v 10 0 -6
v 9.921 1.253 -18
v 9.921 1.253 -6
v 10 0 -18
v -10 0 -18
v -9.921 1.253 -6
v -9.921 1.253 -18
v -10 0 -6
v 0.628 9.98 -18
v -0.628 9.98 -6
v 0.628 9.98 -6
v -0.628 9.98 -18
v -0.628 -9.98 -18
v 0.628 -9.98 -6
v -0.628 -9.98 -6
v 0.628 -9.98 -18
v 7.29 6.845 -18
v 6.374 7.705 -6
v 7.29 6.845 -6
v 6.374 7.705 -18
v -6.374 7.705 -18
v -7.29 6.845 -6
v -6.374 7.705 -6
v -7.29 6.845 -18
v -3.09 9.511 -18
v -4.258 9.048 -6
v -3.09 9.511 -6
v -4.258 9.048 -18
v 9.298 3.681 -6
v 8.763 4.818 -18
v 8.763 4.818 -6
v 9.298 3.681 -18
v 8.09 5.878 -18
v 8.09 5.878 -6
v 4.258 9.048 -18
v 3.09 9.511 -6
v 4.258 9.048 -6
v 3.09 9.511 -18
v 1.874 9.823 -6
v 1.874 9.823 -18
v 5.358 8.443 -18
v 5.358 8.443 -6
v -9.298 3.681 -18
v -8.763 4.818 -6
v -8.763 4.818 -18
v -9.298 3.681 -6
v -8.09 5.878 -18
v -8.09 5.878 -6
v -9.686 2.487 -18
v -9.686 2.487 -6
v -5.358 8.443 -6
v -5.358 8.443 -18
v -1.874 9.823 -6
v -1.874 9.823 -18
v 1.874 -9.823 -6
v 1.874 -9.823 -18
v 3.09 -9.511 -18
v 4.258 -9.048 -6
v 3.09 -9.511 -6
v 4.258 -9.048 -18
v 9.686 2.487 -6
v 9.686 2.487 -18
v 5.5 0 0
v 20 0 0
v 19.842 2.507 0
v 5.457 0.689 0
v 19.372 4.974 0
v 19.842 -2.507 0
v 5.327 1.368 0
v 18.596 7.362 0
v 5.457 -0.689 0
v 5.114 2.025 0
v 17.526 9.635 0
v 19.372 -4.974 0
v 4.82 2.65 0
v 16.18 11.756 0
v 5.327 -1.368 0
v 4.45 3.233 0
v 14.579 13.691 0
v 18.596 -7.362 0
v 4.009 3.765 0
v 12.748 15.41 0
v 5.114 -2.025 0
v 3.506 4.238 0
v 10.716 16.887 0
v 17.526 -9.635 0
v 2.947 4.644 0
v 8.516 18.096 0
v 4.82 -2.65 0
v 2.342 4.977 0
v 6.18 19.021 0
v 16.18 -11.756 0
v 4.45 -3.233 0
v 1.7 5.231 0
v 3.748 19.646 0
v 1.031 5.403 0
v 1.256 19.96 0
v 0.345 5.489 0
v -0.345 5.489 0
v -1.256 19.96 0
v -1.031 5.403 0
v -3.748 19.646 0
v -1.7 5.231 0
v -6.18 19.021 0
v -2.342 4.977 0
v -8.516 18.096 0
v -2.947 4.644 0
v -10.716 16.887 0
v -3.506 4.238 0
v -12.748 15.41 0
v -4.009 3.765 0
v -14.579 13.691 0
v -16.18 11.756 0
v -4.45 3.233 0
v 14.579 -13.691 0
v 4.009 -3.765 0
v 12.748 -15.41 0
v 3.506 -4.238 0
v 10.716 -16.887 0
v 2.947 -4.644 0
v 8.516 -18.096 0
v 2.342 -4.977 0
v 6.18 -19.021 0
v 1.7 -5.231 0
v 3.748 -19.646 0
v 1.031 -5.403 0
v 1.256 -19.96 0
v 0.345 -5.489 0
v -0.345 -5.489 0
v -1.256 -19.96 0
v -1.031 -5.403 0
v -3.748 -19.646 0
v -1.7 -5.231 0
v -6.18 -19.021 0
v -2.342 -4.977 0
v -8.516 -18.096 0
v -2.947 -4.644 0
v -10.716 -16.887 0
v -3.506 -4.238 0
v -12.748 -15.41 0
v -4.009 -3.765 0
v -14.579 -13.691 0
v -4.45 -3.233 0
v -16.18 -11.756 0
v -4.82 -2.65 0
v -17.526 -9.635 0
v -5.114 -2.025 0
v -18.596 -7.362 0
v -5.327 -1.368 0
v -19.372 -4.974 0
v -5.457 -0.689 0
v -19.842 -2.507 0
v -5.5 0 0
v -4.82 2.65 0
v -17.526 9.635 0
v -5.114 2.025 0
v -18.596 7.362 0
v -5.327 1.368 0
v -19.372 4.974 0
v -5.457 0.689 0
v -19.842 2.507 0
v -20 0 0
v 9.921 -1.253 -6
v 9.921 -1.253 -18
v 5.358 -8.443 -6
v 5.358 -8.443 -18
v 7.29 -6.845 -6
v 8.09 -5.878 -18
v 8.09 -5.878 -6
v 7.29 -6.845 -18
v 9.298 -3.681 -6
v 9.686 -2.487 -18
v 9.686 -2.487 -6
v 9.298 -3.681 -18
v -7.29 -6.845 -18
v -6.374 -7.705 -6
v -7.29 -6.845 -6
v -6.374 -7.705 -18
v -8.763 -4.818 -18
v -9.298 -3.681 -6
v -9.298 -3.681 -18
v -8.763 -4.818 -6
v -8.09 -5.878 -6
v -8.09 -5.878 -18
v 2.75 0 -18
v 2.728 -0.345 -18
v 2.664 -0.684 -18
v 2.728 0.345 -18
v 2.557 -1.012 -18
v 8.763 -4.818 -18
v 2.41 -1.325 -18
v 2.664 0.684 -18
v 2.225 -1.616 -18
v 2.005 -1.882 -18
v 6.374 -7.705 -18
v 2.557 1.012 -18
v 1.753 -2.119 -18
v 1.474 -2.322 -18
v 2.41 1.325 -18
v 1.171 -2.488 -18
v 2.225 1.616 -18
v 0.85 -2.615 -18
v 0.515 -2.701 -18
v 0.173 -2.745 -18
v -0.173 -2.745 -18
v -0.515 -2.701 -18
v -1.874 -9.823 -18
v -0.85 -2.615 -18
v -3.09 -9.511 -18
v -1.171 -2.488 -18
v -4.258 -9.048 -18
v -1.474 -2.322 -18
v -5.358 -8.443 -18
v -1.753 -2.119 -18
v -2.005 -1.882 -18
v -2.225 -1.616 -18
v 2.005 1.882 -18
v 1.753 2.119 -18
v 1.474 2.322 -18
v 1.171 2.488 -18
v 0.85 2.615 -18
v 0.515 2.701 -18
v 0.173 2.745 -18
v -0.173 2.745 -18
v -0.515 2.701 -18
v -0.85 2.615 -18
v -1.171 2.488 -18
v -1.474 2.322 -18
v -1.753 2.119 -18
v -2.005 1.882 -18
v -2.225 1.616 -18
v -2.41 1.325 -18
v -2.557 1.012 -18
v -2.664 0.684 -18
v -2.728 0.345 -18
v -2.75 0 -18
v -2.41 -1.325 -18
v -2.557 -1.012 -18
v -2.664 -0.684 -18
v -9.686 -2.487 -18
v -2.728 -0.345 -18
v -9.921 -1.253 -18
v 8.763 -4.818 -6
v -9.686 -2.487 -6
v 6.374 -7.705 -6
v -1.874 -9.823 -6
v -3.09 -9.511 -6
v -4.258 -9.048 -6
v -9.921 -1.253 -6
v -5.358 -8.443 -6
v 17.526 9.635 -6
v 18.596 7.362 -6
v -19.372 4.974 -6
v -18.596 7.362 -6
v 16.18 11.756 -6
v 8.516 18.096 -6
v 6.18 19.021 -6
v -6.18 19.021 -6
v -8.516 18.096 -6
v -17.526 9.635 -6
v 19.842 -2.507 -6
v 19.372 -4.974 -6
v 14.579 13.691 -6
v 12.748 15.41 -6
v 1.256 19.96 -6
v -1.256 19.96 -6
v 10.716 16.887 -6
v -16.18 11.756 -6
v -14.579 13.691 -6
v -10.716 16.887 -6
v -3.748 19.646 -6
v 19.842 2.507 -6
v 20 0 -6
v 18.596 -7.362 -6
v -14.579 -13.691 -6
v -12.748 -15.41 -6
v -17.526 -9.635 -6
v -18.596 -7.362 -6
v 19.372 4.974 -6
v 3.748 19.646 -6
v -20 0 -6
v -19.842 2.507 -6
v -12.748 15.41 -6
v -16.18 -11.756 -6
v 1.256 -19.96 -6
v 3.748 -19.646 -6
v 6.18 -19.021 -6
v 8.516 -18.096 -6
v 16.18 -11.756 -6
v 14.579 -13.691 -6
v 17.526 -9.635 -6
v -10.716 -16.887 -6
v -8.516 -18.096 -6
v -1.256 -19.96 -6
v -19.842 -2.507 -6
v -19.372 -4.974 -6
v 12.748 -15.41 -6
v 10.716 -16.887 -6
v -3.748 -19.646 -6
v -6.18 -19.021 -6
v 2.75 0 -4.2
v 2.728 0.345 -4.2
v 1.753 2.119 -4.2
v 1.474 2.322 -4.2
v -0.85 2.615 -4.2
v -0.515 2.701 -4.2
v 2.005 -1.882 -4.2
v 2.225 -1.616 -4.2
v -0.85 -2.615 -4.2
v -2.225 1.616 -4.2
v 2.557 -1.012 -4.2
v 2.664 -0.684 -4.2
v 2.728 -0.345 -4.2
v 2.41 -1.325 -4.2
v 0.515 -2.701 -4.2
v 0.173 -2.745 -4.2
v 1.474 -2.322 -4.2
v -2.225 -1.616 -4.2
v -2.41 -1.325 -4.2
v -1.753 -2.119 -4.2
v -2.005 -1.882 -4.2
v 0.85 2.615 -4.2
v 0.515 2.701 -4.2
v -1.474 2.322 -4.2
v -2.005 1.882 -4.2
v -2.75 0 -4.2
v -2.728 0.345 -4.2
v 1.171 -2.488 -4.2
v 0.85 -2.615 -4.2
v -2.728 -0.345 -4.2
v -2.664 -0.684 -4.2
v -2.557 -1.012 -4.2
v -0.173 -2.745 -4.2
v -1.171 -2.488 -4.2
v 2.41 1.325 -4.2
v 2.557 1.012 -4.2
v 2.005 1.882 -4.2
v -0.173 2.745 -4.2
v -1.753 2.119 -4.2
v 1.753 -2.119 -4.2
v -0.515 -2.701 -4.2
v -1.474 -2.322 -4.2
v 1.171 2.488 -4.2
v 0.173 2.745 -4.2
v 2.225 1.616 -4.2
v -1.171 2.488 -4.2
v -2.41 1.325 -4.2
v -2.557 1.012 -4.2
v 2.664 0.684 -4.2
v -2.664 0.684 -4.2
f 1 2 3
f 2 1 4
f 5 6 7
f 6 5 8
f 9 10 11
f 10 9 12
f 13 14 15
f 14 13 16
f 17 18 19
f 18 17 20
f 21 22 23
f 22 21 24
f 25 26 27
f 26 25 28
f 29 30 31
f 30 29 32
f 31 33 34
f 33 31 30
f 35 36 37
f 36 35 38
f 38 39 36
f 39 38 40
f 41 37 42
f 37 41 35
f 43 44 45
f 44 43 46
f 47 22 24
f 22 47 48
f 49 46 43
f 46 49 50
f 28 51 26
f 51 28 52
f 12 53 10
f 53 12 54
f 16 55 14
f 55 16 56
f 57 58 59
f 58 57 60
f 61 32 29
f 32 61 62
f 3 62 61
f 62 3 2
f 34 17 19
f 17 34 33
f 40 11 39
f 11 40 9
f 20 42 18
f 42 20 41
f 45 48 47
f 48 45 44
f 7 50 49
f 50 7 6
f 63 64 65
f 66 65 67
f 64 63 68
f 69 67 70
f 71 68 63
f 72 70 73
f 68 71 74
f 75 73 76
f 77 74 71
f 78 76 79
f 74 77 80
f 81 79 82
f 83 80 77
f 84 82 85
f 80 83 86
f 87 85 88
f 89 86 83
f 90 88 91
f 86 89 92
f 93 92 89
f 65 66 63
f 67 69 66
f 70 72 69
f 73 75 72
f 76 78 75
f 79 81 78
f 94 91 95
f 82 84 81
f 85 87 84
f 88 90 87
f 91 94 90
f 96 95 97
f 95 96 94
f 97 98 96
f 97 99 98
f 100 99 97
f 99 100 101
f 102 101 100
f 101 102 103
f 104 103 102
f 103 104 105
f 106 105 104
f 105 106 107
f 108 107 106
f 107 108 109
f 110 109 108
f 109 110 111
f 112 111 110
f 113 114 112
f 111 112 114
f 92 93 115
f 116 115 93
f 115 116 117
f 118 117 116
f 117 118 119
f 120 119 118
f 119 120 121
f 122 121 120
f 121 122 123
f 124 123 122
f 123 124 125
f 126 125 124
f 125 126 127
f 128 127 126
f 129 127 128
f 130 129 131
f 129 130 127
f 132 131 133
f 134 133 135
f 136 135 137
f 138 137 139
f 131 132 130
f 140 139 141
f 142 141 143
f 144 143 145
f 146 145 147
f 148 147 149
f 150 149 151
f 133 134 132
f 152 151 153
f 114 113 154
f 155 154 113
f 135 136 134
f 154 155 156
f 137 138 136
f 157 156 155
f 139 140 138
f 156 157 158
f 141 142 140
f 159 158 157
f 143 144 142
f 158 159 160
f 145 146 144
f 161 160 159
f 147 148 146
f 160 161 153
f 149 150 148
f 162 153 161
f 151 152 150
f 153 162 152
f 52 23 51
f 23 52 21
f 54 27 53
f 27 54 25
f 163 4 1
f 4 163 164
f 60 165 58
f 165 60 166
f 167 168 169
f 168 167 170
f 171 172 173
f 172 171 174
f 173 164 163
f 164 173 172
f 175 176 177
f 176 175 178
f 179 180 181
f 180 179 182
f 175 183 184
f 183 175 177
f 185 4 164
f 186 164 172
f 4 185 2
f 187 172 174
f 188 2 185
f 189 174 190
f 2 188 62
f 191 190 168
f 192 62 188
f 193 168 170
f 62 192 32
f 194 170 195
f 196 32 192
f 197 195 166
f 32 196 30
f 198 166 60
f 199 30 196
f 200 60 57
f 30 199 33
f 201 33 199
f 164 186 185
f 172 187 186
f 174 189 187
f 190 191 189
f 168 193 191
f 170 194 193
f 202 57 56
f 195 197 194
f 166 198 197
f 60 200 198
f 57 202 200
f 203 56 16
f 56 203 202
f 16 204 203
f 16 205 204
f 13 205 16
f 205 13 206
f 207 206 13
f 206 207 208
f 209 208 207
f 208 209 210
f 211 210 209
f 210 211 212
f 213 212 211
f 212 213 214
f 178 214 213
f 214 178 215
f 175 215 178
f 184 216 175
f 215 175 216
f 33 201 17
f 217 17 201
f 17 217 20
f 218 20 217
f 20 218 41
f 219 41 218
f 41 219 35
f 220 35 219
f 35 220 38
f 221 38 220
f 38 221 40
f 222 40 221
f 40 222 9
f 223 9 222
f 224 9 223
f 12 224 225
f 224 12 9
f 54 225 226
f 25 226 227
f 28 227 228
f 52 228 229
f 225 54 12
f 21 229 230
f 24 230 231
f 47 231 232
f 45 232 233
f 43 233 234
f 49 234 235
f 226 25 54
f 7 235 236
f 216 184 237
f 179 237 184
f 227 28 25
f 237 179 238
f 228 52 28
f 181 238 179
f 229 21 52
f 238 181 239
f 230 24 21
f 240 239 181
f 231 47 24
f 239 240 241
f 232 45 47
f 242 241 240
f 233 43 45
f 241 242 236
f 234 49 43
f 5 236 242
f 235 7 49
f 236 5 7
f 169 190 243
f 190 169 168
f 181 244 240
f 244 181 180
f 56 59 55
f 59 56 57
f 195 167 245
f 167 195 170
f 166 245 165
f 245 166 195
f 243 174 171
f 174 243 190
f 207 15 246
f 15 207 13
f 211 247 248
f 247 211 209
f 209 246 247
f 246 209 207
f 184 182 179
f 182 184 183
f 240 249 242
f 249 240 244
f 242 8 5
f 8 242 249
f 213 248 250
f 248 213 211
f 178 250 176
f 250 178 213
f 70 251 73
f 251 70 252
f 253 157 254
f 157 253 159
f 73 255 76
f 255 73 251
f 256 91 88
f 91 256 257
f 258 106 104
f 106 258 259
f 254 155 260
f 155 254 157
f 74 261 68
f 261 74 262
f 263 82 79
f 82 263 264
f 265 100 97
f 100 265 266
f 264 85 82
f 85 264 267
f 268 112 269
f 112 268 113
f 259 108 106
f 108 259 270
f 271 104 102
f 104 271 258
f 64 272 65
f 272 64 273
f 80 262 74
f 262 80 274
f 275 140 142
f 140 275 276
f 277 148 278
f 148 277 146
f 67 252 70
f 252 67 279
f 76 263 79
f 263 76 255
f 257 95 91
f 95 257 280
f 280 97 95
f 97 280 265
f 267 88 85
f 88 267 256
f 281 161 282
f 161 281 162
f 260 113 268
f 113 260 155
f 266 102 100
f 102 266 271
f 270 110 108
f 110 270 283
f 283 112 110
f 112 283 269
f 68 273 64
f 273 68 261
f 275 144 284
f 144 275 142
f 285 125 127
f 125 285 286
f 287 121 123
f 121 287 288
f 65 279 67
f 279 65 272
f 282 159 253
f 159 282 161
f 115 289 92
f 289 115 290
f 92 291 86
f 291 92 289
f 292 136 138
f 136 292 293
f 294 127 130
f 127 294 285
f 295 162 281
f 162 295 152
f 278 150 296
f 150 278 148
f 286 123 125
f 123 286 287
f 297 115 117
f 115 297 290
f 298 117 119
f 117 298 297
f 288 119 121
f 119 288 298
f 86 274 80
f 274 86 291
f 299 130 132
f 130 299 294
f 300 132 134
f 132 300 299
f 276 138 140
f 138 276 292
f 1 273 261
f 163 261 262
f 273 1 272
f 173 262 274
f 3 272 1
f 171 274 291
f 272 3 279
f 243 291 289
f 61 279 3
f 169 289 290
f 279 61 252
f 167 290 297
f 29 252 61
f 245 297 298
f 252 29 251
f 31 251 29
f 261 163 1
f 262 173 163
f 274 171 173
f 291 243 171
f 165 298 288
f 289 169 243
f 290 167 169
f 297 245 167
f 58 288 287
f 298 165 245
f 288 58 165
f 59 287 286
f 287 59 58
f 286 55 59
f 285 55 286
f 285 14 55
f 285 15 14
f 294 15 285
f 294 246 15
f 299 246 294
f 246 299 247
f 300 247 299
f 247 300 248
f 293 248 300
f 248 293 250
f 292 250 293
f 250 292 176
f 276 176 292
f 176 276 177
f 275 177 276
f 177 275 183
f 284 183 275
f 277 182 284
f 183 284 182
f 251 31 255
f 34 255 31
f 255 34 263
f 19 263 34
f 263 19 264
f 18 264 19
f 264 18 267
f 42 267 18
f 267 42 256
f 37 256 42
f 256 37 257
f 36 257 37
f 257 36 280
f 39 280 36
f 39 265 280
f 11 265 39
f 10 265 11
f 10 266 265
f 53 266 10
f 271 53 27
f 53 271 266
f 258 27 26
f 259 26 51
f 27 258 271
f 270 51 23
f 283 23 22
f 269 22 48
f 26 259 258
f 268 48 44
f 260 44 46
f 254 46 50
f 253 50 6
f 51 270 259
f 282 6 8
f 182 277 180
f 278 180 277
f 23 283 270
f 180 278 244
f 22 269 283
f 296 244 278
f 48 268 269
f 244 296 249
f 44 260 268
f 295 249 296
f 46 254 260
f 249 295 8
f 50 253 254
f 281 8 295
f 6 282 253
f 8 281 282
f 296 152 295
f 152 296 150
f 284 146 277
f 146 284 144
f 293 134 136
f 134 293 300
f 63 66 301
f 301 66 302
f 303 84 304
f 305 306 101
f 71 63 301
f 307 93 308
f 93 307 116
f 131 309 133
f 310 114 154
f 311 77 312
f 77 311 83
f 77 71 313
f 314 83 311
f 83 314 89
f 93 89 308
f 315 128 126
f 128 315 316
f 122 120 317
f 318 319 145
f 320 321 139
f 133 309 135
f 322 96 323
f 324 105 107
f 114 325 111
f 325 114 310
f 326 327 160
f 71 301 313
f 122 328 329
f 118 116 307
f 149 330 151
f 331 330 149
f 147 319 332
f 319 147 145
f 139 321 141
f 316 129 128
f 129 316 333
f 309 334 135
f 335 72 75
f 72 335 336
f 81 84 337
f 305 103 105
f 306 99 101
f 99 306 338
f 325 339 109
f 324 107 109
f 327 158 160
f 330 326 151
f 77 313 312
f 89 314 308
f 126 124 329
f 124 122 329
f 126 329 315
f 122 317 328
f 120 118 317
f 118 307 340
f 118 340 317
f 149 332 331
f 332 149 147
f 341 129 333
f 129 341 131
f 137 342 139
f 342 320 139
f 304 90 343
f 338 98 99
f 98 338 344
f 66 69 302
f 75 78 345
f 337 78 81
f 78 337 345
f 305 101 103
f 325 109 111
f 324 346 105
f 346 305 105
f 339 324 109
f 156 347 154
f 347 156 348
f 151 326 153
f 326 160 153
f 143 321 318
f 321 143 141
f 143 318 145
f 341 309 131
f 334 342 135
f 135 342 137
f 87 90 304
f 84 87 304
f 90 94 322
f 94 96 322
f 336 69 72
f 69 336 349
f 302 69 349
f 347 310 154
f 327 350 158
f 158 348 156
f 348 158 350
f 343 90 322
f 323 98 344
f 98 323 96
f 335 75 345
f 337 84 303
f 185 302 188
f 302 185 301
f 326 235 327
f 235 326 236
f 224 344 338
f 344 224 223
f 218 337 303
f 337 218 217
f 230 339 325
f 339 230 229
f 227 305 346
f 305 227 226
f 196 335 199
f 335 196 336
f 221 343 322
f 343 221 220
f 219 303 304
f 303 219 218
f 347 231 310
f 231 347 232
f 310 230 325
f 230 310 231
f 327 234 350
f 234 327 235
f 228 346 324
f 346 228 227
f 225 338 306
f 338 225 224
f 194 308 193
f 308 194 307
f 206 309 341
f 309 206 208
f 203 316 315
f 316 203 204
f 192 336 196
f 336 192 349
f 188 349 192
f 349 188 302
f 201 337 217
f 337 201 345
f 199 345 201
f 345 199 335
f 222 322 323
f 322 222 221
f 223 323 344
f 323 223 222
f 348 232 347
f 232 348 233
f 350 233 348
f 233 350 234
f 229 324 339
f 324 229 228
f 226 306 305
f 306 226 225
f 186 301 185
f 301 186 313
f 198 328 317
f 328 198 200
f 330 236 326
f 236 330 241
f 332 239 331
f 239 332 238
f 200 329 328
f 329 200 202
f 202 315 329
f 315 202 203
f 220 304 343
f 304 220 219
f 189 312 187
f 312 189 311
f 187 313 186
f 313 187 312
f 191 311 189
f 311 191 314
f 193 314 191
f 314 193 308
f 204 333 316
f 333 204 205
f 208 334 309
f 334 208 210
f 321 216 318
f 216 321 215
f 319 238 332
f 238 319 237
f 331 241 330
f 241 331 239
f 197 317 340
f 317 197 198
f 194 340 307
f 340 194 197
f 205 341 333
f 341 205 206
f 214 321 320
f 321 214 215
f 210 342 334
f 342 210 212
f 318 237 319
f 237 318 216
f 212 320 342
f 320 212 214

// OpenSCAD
$fn = 50;


difference() {
	union() {
		translate(v = [0, 0, -18.0000000000]) {
			cylinder(h = 18, r = 10.0000000000);
		}
		translate(v = [0, 0, -6.0000000000]) {
			cylinder(h = 6, r = 20.0000000000);
		}
	}
	union() {
		translate(v = [0, 0, 0]) {
			rotate(a = [0, 0, 0]) {
				difference() {
					union() {
						#translate(v = [0, 0, -18.0000000000]) {
							cylinder(h = 18, r = 2.2500000000);
						}
						#translate(v = [0, 0, -4.2000000000]) {
							cylinder(h = 4.2000000000, r = 10.0000000000, r1 = 2.7500000000, r2 = 5.5000000000);
						}
						#translate(v = [0, 0, -18.0000000000]) {
							cylinder(h = 18, r = 2.7500000000);
						}
						#translate(v = [0, 0, -18.0000000000]) {
							cylinder(h = 18, r = 2.2500000000);
						}
					}
					union();
				}
			}
		}
	}
}
